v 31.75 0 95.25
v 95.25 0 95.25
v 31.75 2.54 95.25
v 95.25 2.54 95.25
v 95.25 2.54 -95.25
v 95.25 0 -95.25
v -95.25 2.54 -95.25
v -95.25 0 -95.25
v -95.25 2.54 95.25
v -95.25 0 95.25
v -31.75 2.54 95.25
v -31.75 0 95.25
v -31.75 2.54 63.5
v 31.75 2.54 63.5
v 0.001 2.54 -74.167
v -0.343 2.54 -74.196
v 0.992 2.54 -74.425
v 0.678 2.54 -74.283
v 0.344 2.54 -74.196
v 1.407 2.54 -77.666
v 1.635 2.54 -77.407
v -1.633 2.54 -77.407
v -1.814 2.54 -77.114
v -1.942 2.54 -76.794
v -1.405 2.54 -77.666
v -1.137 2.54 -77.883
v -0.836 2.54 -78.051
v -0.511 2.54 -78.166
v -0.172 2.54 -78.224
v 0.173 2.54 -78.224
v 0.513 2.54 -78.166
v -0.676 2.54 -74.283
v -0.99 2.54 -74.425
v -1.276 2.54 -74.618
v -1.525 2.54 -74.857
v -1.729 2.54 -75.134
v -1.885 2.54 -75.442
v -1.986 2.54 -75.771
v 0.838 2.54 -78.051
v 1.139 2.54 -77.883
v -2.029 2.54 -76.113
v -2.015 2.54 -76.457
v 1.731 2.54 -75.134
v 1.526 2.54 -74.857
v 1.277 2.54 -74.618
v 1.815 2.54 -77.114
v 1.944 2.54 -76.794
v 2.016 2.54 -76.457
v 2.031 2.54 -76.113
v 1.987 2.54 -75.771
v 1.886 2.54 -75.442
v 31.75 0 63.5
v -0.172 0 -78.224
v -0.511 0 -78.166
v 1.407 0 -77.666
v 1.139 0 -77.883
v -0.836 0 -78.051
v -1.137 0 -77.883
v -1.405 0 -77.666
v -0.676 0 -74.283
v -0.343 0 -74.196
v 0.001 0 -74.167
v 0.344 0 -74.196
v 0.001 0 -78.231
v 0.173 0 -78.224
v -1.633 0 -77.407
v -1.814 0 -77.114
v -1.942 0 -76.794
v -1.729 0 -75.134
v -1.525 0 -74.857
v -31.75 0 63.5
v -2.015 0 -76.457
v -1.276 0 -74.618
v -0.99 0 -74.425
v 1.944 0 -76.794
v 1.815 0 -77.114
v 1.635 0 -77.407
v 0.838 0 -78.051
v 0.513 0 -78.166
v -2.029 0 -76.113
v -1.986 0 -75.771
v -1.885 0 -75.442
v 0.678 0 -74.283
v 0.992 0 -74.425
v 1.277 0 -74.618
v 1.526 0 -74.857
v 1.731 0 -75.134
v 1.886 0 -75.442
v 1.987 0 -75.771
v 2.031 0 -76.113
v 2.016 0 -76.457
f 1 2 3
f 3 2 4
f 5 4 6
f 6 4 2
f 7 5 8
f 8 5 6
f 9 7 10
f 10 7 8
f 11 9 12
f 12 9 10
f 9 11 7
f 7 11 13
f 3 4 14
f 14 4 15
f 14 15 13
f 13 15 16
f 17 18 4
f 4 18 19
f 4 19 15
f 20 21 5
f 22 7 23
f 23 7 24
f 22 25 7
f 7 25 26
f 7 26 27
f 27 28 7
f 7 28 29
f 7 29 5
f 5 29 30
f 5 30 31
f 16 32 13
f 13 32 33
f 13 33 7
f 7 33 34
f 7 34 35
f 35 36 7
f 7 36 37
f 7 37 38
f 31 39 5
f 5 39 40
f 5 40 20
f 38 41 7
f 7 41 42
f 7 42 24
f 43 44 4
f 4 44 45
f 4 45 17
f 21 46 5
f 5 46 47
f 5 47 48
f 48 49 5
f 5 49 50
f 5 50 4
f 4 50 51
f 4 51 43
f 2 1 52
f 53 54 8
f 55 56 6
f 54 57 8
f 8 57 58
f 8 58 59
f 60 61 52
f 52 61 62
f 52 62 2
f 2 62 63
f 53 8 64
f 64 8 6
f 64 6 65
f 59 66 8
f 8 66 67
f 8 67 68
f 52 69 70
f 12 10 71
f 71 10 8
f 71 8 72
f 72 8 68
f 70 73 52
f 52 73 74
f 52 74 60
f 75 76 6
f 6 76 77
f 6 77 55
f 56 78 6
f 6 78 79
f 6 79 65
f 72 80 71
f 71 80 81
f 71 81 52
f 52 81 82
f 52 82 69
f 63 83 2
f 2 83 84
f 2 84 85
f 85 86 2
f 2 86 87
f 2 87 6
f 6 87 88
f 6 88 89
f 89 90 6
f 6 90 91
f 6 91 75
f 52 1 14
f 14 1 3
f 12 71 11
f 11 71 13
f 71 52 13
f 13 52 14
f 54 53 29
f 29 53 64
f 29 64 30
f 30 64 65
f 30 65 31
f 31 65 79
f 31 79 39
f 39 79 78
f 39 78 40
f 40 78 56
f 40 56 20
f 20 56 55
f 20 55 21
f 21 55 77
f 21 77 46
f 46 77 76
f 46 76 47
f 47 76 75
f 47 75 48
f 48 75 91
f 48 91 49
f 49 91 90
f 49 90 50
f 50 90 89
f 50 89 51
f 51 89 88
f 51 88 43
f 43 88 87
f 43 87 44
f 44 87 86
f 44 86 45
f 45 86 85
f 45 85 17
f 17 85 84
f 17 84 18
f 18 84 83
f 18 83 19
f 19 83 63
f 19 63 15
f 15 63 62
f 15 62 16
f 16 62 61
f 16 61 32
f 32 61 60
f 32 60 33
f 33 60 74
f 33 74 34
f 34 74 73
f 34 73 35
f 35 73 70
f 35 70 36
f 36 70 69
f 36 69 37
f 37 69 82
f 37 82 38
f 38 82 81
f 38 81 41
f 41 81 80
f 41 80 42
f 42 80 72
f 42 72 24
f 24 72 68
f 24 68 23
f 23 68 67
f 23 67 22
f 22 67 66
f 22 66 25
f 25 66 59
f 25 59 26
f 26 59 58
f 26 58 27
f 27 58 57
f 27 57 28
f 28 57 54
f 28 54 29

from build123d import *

# Parameters (mm, degrees)
SKETCH1_W           = 190.5
SKETCH1_H           = 190.5
BOSS_EXTRUDE1_DEPTH = 2.54
SKETCH2_W           = 63.5
SKETCH2_H           = 31.75
CUT_EXTRUDE1_DEPTH  = 2.54
SKETCH3_R           = 2.032
CUT_EXTRUDE2_DEPTH  = 2.54


with BuildPart() as part:
    # Sketch1 → Boss-Extrude1 (new body)
    with BuildSketch(Plane(origin=(0, 0, 0), x_dir=(1, 0, 0), z_dir=(0, 1, 0))):
        Rectangle(SKETCH1_W, SKETCH1_H)
    extrude(amount=BOSS_EXTRUDE1_DEPTH)

    # Sketch2 → Cut-Extrude1 (cut)
    with BuildSketch(Plane(origin=(0, 2.54, 0), x_dir=(1, 0, 0), z_dir=(0, 1, 0))):
        with Locations((0, -79.375)):
            Rectangle(SKETCH2_W, SKETCH2_H)
    extrude(amount=-CUT_EXTRUDE1_DEPTH, mode=Mode.SUBTRACT)

    # Sketch3 → Cut-Extrude2 (cut)
    with BuildSketch(Plane(origin=(0, 2.54, 0), x_dir=(1, 0, 0), z_dir=(0, 1, 0))):
        with Locations((0.000813673, 76.199186327)):
            Circle(SKETCH3_R)
    extrude(amount=-CUT_EXTRUDE2_DEPTH, mode=Mode.SUBTRACT)


solid = part.part
